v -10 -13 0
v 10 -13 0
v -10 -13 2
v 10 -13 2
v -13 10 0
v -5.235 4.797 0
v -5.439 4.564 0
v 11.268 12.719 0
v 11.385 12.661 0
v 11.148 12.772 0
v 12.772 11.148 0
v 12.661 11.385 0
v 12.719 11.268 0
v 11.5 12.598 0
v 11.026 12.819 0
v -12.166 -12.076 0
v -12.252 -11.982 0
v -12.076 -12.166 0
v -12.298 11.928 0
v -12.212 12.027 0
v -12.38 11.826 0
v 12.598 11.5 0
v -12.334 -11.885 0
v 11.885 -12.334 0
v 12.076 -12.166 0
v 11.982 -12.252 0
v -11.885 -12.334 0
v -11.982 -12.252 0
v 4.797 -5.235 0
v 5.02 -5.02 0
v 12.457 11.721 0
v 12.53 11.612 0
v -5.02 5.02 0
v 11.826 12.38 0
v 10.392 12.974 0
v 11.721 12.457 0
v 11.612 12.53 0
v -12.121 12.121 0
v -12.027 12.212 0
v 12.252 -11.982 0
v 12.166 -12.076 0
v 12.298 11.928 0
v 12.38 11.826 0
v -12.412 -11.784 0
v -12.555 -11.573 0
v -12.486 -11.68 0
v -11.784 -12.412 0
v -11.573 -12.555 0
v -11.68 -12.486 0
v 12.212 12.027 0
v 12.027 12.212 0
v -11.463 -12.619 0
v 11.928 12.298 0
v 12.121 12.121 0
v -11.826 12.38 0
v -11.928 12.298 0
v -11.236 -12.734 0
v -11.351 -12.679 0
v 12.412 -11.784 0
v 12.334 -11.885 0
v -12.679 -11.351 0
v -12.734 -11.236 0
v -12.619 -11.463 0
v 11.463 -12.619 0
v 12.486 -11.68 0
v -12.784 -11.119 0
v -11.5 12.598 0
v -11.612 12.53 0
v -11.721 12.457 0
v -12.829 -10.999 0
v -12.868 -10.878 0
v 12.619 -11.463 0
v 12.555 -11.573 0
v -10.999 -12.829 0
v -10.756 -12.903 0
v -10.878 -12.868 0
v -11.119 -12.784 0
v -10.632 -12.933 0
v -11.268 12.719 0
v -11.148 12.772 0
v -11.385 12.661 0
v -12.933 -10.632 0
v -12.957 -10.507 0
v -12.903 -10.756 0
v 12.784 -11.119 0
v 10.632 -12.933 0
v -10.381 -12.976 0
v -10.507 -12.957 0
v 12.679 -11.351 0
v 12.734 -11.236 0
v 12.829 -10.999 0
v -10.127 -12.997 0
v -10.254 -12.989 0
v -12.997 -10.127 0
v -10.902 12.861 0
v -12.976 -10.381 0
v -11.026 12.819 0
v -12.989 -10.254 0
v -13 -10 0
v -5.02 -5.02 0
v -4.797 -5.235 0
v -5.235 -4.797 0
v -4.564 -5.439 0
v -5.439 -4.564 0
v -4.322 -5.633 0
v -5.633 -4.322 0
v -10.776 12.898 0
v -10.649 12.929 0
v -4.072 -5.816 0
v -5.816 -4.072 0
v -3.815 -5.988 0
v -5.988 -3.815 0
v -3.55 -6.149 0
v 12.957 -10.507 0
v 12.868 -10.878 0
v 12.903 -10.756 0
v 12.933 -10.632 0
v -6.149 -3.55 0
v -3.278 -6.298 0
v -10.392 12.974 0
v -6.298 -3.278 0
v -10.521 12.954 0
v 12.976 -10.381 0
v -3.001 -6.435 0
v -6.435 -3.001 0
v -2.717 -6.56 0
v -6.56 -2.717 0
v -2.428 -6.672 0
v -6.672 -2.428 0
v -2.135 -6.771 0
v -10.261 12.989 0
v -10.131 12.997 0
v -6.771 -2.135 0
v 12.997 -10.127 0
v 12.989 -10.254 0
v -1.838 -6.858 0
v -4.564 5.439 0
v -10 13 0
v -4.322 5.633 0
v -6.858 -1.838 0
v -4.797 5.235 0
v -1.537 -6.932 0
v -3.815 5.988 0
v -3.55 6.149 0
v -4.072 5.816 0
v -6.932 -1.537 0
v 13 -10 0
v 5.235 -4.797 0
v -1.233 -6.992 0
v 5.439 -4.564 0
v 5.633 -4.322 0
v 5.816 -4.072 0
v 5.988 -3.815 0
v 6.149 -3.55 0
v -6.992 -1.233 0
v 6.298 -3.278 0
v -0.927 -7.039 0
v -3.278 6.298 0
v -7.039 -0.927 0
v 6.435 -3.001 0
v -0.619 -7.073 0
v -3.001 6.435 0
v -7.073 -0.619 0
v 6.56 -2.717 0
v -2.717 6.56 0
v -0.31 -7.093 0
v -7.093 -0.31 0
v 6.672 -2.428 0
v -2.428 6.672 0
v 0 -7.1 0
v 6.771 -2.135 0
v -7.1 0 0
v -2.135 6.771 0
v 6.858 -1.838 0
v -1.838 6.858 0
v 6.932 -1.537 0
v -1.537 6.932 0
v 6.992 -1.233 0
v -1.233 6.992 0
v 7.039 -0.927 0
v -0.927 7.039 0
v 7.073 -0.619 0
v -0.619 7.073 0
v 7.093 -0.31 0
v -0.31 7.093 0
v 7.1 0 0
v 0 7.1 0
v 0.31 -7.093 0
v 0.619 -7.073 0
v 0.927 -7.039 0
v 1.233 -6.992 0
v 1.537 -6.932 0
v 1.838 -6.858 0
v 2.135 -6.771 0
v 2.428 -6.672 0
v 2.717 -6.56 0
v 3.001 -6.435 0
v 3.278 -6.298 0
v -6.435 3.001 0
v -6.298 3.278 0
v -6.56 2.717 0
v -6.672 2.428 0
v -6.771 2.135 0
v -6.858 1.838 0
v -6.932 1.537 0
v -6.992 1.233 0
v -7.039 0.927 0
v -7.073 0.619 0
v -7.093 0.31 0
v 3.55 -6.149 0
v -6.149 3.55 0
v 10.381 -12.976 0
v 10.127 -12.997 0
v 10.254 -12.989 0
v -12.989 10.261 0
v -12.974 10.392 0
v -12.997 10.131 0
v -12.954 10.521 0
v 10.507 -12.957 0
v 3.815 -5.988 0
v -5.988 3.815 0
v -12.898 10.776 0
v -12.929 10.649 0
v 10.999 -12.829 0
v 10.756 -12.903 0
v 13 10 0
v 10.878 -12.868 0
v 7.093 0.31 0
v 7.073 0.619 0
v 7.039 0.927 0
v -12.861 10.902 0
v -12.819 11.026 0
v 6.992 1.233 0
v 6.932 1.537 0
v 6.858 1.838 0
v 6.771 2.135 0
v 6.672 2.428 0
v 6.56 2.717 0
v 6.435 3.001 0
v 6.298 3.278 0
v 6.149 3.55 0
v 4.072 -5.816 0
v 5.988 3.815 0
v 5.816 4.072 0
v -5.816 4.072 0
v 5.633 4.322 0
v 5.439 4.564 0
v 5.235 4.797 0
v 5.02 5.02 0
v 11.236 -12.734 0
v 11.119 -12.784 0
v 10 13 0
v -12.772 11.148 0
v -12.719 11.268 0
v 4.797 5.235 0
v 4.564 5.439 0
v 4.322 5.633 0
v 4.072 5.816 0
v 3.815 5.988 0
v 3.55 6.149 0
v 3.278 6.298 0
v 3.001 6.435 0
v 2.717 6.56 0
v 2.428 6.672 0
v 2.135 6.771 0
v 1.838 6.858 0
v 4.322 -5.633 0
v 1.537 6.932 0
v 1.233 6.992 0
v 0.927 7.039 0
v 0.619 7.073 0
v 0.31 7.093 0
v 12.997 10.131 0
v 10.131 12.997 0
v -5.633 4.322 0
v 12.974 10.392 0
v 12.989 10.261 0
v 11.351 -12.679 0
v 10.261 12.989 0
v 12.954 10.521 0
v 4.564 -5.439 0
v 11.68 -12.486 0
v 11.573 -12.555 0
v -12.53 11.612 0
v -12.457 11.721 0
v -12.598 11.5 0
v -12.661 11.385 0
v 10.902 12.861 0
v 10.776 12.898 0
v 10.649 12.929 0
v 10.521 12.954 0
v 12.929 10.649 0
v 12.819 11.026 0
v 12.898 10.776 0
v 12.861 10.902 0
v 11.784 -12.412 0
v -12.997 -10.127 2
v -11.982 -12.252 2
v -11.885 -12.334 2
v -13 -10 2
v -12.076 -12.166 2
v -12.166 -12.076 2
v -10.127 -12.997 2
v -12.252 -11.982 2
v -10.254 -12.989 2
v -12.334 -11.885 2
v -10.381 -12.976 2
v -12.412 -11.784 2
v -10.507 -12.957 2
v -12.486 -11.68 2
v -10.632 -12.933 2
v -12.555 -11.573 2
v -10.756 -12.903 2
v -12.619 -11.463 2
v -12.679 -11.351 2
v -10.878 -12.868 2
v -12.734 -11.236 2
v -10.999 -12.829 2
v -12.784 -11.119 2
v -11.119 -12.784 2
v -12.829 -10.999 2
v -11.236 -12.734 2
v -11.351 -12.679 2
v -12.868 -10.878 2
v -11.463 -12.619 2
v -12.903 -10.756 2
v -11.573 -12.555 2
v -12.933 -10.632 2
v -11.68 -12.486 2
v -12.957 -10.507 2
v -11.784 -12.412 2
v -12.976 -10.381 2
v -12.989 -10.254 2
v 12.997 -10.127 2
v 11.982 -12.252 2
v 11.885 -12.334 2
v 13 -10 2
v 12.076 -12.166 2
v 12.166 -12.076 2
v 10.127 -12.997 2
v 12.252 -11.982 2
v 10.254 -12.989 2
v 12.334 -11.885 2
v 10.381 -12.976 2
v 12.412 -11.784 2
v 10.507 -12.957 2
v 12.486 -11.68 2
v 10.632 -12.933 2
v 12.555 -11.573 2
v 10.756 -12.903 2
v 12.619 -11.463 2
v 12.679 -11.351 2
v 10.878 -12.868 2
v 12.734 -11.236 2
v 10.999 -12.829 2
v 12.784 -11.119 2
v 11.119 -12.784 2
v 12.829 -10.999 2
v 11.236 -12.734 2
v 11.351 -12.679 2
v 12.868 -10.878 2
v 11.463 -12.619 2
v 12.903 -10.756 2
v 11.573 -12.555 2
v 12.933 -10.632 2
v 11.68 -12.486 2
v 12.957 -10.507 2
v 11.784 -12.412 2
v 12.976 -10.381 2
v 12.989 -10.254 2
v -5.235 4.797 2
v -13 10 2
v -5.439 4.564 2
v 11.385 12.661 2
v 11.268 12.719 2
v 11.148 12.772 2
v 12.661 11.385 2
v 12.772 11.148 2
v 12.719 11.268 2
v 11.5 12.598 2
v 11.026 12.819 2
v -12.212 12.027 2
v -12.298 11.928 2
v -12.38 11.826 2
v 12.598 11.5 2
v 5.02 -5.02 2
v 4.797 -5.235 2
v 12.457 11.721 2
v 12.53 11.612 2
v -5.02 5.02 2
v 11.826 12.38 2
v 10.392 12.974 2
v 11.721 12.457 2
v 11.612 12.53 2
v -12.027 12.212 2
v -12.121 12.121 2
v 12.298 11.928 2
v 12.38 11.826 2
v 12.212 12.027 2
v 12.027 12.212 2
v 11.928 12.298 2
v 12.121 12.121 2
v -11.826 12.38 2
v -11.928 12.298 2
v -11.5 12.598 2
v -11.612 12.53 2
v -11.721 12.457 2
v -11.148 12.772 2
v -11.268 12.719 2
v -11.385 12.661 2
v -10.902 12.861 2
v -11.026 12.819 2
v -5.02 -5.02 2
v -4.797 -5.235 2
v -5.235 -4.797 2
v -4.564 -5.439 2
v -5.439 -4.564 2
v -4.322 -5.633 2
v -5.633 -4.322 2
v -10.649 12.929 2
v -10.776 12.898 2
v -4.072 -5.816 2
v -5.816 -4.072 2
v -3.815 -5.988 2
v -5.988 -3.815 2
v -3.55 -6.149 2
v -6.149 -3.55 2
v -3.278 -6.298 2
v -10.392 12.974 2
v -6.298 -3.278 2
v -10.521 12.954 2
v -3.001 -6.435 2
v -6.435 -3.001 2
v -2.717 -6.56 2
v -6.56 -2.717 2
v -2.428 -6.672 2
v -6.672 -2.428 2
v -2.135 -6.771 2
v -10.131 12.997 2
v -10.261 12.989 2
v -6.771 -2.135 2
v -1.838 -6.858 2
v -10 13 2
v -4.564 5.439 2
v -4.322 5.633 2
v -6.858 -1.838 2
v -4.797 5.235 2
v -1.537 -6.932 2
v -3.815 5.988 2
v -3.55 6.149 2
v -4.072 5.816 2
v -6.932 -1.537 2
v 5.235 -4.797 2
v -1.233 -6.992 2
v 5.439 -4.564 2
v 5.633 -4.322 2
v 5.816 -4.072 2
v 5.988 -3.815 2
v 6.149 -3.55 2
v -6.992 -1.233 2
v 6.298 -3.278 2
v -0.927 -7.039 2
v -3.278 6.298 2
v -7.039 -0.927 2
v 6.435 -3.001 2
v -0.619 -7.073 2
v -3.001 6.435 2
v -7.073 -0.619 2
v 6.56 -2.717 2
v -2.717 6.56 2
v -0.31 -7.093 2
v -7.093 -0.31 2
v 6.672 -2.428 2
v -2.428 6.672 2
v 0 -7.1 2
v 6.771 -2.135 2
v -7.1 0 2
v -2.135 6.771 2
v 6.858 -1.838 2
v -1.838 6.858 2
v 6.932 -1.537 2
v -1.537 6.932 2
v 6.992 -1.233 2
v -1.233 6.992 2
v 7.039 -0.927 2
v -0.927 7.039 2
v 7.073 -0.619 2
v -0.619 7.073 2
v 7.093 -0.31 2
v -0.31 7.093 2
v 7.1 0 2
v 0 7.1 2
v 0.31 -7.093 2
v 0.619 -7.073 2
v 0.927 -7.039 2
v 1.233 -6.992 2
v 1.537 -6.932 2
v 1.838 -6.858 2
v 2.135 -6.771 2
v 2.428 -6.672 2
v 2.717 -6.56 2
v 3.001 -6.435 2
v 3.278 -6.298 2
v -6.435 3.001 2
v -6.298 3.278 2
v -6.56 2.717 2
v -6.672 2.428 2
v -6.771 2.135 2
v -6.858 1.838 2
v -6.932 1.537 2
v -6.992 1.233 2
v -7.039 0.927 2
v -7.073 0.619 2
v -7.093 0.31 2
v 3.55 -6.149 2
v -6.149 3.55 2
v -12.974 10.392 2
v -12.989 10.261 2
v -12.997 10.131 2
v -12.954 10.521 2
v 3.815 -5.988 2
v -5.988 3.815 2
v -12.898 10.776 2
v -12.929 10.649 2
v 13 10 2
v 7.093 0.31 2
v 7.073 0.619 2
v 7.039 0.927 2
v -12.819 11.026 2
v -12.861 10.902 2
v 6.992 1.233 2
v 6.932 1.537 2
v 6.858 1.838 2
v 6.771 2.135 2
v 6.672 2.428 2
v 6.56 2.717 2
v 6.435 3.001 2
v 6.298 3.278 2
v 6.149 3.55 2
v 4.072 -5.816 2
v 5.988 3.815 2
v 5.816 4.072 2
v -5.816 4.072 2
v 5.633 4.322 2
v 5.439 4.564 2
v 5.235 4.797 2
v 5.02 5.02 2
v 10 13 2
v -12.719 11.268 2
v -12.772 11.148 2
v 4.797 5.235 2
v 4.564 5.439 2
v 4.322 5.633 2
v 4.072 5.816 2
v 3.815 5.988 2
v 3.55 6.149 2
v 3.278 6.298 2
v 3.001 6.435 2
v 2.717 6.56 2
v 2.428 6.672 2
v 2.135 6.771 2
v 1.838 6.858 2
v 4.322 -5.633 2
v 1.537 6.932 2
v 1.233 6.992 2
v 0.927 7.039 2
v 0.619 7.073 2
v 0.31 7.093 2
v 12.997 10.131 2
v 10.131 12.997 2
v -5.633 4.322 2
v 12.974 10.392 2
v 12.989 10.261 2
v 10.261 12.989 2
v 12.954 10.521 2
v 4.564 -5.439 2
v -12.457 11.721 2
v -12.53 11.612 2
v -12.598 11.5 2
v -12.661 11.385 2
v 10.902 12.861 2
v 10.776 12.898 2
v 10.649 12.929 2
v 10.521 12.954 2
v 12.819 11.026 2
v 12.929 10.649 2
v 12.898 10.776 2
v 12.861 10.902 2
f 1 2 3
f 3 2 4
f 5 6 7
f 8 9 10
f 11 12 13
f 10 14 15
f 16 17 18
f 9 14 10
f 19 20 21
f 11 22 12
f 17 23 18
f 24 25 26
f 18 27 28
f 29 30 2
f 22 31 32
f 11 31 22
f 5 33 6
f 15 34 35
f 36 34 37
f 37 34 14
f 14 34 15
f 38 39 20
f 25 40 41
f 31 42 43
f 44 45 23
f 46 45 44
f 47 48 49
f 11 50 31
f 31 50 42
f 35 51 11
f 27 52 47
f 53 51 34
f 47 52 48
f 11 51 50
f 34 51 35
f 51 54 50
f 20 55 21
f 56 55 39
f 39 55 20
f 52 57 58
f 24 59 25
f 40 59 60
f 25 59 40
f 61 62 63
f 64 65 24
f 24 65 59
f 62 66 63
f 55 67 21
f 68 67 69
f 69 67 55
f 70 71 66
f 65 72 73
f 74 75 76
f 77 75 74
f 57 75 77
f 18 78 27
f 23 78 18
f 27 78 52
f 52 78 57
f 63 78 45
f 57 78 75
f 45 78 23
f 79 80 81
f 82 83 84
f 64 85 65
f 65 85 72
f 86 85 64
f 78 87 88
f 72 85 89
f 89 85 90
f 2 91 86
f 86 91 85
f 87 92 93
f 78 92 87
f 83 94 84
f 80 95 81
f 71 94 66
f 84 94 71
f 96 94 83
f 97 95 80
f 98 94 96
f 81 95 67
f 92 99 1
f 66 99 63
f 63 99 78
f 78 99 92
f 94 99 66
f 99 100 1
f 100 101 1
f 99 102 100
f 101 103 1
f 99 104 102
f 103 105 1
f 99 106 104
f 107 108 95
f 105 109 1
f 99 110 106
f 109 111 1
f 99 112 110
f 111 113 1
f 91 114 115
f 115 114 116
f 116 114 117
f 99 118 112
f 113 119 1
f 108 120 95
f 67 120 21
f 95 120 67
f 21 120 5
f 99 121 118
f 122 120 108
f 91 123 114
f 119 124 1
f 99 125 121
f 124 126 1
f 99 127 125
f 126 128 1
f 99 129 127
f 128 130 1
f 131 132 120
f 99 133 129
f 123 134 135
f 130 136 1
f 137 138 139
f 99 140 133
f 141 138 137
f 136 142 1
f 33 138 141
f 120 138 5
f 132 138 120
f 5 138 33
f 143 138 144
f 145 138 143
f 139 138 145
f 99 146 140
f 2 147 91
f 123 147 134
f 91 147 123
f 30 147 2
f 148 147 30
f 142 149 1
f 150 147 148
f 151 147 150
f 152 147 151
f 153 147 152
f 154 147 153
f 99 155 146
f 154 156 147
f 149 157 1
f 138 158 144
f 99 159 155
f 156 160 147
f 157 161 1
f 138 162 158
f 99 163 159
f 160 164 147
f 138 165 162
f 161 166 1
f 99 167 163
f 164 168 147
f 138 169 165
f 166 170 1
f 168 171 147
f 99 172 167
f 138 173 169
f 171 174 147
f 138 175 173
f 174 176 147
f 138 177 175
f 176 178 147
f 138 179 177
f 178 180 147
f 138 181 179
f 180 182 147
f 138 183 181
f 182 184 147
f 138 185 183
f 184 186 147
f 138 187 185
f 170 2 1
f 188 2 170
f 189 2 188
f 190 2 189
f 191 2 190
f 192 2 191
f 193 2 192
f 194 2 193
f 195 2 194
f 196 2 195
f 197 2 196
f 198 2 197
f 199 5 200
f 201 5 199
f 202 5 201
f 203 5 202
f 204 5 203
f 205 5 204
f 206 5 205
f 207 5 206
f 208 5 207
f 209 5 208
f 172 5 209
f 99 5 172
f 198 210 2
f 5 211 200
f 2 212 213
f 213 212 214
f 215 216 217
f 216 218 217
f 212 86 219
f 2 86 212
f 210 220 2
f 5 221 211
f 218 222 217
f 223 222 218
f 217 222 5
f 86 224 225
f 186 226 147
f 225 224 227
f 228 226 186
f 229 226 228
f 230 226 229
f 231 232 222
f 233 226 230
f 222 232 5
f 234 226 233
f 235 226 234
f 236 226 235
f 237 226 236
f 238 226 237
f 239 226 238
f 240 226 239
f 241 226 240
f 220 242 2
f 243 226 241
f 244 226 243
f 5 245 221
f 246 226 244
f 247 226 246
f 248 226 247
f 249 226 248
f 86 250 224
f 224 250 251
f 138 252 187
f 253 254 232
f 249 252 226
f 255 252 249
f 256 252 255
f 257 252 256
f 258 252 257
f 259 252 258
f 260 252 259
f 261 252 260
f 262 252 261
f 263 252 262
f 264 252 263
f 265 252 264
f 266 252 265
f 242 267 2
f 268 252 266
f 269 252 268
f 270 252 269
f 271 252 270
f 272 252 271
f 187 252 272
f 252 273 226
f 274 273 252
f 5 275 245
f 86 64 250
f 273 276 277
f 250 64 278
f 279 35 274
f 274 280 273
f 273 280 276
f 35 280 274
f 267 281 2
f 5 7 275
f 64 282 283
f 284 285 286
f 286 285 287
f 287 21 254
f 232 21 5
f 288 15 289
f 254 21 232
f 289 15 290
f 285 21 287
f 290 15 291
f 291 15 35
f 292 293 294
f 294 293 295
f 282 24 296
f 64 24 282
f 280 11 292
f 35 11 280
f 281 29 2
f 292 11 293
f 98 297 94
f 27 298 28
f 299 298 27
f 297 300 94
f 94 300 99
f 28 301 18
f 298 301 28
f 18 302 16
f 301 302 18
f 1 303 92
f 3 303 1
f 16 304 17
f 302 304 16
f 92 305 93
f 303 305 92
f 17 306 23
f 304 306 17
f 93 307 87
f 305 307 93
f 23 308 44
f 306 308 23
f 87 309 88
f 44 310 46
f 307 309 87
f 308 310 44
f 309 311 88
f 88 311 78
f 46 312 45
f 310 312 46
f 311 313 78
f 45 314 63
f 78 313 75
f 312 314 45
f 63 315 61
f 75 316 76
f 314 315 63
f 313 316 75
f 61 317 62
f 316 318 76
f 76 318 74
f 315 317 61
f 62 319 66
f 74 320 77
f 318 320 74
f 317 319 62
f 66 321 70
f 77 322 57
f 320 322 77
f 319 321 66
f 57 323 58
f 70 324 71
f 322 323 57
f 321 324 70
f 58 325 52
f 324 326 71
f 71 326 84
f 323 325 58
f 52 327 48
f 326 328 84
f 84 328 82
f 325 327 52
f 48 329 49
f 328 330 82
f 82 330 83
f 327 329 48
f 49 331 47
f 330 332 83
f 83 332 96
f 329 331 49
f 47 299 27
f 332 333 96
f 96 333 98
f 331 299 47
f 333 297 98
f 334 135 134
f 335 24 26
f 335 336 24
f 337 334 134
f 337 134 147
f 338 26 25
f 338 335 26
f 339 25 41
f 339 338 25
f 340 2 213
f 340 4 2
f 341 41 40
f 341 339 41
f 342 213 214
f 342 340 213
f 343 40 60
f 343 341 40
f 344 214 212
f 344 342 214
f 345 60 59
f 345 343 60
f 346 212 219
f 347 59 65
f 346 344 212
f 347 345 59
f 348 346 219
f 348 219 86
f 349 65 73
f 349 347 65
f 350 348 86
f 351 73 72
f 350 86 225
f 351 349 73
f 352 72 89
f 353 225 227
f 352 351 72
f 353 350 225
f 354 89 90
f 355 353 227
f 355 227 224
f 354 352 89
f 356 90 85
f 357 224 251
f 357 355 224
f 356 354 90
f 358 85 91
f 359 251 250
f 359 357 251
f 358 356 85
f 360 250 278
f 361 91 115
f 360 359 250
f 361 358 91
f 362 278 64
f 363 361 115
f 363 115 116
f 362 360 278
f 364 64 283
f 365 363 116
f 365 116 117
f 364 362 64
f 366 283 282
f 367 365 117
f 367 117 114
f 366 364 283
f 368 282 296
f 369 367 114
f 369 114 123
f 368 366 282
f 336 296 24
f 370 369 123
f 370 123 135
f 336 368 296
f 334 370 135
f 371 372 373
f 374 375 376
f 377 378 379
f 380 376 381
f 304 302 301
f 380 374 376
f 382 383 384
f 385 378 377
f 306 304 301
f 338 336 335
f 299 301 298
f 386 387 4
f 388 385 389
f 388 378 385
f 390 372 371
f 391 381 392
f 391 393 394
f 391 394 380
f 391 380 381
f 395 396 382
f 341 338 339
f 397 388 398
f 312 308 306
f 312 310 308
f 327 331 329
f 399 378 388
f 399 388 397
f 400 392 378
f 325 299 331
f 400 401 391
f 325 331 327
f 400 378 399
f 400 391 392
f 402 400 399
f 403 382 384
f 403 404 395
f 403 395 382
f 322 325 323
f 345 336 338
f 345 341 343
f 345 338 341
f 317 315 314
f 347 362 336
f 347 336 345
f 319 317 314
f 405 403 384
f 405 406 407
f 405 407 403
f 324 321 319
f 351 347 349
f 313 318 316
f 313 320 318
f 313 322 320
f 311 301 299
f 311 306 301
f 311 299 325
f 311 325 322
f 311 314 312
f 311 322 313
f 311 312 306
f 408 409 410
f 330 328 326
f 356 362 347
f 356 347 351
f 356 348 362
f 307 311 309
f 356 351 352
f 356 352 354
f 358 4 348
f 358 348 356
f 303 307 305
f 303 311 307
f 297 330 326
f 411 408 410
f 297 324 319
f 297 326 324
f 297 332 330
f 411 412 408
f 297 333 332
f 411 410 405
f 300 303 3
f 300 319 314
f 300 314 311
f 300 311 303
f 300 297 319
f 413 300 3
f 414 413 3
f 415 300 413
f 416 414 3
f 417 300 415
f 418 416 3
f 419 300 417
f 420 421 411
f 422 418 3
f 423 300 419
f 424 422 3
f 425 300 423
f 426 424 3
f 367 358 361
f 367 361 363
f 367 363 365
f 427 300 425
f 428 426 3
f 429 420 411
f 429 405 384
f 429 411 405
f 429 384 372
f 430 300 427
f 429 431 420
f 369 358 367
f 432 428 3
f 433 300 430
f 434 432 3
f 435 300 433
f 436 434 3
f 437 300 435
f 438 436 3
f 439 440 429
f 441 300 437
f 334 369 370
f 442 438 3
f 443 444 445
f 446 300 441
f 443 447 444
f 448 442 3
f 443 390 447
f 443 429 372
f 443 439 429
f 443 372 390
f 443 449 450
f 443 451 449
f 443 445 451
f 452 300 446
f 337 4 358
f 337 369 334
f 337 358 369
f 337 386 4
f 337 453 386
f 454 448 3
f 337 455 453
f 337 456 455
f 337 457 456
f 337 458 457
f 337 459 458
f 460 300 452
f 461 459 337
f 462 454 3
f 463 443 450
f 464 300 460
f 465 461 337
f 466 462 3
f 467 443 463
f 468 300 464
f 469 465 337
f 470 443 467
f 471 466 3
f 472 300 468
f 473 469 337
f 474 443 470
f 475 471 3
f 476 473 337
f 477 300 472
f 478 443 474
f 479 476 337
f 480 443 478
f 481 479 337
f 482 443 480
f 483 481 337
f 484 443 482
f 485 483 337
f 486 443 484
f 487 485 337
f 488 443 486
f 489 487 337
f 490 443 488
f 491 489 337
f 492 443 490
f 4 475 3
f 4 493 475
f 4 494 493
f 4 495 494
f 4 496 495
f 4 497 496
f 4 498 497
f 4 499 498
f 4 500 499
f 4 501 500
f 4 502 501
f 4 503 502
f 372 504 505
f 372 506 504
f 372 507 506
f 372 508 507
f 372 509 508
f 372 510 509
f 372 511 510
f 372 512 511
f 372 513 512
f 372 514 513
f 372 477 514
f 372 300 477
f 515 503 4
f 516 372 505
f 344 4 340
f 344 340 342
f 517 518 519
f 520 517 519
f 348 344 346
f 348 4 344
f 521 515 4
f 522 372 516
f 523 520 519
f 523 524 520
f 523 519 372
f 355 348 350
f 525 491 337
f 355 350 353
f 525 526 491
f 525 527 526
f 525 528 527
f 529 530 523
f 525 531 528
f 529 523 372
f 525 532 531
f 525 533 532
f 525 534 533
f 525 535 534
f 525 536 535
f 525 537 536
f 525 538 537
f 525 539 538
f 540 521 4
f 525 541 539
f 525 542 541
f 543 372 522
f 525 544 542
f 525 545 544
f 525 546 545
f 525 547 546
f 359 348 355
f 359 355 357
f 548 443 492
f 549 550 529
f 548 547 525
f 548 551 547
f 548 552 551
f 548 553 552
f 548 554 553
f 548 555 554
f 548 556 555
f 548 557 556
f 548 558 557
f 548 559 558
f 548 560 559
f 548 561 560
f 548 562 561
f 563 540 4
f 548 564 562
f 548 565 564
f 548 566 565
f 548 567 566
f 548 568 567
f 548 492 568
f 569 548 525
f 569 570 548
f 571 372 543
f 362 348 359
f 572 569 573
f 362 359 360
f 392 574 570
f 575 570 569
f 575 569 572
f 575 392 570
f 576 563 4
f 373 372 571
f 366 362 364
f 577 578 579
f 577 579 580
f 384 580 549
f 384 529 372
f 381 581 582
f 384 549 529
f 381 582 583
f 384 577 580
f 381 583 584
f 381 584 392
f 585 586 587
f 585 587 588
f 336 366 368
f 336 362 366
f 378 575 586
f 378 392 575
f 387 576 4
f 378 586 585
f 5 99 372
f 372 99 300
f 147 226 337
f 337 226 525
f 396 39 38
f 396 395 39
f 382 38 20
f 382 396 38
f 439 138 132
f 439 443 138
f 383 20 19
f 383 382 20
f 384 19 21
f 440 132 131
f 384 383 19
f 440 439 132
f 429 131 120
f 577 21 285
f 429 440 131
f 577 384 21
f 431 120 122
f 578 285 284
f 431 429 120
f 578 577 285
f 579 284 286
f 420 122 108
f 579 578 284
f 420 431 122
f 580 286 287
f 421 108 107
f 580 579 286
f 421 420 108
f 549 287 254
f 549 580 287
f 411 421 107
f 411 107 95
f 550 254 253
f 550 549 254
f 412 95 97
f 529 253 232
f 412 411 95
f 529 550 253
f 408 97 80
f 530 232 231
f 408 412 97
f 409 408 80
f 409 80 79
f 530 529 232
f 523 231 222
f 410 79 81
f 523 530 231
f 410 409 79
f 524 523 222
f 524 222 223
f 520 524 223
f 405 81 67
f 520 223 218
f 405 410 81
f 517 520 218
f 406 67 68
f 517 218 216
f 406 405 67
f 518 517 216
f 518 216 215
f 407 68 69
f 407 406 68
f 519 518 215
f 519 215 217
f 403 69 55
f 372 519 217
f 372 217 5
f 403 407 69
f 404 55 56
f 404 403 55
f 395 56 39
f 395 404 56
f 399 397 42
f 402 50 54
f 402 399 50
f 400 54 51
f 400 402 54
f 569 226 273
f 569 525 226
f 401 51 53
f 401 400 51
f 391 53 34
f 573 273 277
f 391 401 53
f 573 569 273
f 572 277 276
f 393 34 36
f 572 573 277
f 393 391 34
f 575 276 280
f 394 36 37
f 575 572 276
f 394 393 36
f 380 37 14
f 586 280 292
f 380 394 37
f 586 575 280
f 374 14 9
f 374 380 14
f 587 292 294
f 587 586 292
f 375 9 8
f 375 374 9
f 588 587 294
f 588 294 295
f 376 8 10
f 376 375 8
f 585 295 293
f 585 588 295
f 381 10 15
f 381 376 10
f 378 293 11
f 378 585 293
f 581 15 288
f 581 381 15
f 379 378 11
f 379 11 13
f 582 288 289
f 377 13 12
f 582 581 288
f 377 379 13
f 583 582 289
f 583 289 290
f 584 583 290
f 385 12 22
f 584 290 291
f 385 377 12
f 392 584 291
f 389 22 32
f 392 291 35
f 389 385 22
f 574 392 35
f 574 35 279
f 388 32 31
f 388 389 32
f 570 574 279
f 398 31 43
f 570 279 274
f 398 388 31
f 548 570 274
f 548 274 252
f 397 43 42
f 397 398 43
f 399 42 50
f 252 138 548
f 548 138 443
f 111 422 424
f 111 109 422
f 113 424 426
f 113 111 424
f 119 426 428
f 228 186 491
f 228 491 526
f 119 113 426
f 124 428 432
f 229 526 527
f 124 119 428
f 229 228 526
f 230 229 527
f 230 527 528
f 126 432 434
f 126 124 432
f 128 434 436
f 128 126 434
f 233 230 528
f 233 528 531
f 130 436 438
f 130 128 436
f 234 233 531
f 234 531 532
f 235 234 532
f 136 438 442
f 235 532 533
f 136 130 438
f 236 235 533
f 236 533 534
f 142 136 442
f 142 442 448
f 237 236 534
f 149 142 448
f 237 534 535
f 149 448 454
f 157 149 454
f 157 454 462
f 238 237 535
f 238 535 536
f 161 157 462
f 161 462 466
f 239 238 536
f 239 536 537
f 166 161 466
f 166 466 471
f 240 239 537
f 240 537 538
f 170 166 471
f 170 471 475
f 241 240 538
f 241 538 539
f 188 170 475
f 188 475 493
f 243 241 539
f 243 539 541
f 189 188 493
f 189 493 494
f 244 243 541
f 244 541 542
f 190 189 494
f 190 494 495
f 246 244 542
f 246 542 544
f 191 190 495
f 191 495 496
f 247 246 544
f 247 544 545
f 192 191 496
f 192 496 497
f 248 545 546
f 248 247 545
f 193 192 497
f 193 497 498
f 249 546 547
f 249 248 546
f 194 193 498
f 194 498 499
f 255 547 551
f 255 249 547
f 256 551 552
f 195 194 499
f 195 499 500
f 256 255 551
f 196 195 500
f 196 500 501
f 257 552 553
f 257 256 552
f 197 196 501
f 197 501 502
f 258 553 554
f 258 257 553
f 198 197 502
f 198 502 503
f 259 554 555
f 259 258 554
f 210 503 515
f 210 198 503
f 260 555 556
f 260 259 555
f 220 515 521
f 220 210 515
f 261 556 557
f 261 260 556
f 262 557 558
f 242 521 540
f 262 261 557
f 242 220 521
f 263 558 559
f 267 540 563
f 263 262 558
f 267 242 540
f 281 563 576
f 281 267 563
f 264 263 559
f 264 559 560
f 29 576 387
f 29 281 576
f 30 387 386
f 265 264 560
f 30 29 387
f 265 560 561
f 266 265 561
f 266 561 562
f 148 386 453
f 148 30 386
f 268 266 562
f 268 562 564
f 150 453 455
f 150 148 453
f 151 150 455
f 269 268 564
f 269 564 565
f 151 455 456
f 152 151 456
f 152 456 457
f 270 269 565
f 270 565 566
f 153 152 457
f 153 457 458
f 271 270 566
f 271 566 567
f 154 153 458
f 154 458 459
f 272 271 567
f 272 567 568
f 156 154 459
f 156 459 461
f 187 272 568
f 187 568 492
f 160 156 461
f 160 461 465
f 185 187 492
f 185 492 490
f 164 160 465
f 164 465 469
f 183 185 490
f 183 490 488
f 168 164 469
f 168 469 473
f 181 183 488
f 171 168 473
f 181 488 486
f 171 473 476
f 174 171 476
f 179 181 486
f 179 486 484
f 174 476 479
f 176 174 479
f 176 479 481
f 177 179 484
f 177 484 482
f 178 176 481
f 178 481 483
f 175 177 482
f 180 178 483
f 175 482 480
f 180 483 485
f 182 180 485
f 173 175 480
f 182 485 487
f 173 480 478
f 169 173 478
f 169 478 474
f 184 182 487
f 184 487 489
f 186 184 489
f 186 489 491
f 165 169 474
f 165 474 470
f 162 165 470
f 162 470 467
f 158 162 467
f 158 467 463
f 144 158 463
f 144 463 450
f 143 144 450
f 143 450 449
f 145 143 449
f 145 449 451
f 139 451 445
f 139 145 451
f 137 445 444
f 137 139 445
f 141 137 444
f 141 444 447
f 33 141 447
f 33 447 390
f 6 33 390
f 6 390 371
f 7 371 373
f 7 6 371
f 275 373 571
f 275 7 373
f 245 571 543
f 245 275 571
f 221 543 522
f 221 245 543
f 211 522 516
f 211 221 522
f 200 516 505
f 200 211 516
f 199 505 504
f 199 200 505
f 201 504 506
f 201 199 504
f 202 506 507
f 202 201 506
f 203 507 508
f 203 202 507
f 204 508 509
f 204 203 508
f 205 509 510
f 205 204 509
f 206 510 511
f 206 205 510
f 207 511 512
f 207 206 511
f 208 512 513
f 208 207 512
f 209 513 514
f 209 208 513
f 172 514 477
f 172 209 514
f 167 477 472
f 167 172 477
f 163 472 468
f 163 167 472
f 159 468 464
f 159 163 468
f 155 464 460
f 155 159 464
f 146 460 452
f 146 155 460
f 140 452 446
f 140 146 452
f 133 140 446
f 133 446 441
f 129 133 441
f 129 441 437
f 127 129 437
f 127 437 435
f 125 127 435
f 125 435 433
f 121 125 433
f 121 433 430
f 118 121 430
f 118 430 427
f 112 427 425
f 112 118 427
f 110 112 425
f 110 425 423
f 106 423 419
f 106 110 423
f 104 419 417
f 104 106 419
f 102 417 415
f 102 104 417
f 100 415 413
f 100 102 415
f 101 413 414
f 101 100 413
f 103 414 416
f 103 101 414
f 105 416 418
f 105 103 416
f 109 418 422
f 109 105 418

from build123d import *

# Parameters (mm, degrees)
SKETCH_W      = 26
SKETCH_H      = 26
SKETCH_R      = 7.1
EXTRUDE_DEPTH = 2
FILLET_R      = 3


with BuildPart() as part:
    # Sketch → Extrude (new body)
    with BuildSketch(Plane.XY):
        Rectangle(SKETCH_W, SKETCH_H)
        Circle(SKETCH_R, mode=Mode.SUBTRACT)
    extrude(amount=EXTRUDE_DEPTH)

    # Fillet
    fillet_edges = [part.edges().sort_by_distance(p)[0] for p in [
        (-13, -13, 1),
        (13, -13, 1),
        (13, 13, 1),
        (-13, 13, 1),
    ]]
    fillet(fillet_edges, radius=FILLET_R)


solid = part.part
